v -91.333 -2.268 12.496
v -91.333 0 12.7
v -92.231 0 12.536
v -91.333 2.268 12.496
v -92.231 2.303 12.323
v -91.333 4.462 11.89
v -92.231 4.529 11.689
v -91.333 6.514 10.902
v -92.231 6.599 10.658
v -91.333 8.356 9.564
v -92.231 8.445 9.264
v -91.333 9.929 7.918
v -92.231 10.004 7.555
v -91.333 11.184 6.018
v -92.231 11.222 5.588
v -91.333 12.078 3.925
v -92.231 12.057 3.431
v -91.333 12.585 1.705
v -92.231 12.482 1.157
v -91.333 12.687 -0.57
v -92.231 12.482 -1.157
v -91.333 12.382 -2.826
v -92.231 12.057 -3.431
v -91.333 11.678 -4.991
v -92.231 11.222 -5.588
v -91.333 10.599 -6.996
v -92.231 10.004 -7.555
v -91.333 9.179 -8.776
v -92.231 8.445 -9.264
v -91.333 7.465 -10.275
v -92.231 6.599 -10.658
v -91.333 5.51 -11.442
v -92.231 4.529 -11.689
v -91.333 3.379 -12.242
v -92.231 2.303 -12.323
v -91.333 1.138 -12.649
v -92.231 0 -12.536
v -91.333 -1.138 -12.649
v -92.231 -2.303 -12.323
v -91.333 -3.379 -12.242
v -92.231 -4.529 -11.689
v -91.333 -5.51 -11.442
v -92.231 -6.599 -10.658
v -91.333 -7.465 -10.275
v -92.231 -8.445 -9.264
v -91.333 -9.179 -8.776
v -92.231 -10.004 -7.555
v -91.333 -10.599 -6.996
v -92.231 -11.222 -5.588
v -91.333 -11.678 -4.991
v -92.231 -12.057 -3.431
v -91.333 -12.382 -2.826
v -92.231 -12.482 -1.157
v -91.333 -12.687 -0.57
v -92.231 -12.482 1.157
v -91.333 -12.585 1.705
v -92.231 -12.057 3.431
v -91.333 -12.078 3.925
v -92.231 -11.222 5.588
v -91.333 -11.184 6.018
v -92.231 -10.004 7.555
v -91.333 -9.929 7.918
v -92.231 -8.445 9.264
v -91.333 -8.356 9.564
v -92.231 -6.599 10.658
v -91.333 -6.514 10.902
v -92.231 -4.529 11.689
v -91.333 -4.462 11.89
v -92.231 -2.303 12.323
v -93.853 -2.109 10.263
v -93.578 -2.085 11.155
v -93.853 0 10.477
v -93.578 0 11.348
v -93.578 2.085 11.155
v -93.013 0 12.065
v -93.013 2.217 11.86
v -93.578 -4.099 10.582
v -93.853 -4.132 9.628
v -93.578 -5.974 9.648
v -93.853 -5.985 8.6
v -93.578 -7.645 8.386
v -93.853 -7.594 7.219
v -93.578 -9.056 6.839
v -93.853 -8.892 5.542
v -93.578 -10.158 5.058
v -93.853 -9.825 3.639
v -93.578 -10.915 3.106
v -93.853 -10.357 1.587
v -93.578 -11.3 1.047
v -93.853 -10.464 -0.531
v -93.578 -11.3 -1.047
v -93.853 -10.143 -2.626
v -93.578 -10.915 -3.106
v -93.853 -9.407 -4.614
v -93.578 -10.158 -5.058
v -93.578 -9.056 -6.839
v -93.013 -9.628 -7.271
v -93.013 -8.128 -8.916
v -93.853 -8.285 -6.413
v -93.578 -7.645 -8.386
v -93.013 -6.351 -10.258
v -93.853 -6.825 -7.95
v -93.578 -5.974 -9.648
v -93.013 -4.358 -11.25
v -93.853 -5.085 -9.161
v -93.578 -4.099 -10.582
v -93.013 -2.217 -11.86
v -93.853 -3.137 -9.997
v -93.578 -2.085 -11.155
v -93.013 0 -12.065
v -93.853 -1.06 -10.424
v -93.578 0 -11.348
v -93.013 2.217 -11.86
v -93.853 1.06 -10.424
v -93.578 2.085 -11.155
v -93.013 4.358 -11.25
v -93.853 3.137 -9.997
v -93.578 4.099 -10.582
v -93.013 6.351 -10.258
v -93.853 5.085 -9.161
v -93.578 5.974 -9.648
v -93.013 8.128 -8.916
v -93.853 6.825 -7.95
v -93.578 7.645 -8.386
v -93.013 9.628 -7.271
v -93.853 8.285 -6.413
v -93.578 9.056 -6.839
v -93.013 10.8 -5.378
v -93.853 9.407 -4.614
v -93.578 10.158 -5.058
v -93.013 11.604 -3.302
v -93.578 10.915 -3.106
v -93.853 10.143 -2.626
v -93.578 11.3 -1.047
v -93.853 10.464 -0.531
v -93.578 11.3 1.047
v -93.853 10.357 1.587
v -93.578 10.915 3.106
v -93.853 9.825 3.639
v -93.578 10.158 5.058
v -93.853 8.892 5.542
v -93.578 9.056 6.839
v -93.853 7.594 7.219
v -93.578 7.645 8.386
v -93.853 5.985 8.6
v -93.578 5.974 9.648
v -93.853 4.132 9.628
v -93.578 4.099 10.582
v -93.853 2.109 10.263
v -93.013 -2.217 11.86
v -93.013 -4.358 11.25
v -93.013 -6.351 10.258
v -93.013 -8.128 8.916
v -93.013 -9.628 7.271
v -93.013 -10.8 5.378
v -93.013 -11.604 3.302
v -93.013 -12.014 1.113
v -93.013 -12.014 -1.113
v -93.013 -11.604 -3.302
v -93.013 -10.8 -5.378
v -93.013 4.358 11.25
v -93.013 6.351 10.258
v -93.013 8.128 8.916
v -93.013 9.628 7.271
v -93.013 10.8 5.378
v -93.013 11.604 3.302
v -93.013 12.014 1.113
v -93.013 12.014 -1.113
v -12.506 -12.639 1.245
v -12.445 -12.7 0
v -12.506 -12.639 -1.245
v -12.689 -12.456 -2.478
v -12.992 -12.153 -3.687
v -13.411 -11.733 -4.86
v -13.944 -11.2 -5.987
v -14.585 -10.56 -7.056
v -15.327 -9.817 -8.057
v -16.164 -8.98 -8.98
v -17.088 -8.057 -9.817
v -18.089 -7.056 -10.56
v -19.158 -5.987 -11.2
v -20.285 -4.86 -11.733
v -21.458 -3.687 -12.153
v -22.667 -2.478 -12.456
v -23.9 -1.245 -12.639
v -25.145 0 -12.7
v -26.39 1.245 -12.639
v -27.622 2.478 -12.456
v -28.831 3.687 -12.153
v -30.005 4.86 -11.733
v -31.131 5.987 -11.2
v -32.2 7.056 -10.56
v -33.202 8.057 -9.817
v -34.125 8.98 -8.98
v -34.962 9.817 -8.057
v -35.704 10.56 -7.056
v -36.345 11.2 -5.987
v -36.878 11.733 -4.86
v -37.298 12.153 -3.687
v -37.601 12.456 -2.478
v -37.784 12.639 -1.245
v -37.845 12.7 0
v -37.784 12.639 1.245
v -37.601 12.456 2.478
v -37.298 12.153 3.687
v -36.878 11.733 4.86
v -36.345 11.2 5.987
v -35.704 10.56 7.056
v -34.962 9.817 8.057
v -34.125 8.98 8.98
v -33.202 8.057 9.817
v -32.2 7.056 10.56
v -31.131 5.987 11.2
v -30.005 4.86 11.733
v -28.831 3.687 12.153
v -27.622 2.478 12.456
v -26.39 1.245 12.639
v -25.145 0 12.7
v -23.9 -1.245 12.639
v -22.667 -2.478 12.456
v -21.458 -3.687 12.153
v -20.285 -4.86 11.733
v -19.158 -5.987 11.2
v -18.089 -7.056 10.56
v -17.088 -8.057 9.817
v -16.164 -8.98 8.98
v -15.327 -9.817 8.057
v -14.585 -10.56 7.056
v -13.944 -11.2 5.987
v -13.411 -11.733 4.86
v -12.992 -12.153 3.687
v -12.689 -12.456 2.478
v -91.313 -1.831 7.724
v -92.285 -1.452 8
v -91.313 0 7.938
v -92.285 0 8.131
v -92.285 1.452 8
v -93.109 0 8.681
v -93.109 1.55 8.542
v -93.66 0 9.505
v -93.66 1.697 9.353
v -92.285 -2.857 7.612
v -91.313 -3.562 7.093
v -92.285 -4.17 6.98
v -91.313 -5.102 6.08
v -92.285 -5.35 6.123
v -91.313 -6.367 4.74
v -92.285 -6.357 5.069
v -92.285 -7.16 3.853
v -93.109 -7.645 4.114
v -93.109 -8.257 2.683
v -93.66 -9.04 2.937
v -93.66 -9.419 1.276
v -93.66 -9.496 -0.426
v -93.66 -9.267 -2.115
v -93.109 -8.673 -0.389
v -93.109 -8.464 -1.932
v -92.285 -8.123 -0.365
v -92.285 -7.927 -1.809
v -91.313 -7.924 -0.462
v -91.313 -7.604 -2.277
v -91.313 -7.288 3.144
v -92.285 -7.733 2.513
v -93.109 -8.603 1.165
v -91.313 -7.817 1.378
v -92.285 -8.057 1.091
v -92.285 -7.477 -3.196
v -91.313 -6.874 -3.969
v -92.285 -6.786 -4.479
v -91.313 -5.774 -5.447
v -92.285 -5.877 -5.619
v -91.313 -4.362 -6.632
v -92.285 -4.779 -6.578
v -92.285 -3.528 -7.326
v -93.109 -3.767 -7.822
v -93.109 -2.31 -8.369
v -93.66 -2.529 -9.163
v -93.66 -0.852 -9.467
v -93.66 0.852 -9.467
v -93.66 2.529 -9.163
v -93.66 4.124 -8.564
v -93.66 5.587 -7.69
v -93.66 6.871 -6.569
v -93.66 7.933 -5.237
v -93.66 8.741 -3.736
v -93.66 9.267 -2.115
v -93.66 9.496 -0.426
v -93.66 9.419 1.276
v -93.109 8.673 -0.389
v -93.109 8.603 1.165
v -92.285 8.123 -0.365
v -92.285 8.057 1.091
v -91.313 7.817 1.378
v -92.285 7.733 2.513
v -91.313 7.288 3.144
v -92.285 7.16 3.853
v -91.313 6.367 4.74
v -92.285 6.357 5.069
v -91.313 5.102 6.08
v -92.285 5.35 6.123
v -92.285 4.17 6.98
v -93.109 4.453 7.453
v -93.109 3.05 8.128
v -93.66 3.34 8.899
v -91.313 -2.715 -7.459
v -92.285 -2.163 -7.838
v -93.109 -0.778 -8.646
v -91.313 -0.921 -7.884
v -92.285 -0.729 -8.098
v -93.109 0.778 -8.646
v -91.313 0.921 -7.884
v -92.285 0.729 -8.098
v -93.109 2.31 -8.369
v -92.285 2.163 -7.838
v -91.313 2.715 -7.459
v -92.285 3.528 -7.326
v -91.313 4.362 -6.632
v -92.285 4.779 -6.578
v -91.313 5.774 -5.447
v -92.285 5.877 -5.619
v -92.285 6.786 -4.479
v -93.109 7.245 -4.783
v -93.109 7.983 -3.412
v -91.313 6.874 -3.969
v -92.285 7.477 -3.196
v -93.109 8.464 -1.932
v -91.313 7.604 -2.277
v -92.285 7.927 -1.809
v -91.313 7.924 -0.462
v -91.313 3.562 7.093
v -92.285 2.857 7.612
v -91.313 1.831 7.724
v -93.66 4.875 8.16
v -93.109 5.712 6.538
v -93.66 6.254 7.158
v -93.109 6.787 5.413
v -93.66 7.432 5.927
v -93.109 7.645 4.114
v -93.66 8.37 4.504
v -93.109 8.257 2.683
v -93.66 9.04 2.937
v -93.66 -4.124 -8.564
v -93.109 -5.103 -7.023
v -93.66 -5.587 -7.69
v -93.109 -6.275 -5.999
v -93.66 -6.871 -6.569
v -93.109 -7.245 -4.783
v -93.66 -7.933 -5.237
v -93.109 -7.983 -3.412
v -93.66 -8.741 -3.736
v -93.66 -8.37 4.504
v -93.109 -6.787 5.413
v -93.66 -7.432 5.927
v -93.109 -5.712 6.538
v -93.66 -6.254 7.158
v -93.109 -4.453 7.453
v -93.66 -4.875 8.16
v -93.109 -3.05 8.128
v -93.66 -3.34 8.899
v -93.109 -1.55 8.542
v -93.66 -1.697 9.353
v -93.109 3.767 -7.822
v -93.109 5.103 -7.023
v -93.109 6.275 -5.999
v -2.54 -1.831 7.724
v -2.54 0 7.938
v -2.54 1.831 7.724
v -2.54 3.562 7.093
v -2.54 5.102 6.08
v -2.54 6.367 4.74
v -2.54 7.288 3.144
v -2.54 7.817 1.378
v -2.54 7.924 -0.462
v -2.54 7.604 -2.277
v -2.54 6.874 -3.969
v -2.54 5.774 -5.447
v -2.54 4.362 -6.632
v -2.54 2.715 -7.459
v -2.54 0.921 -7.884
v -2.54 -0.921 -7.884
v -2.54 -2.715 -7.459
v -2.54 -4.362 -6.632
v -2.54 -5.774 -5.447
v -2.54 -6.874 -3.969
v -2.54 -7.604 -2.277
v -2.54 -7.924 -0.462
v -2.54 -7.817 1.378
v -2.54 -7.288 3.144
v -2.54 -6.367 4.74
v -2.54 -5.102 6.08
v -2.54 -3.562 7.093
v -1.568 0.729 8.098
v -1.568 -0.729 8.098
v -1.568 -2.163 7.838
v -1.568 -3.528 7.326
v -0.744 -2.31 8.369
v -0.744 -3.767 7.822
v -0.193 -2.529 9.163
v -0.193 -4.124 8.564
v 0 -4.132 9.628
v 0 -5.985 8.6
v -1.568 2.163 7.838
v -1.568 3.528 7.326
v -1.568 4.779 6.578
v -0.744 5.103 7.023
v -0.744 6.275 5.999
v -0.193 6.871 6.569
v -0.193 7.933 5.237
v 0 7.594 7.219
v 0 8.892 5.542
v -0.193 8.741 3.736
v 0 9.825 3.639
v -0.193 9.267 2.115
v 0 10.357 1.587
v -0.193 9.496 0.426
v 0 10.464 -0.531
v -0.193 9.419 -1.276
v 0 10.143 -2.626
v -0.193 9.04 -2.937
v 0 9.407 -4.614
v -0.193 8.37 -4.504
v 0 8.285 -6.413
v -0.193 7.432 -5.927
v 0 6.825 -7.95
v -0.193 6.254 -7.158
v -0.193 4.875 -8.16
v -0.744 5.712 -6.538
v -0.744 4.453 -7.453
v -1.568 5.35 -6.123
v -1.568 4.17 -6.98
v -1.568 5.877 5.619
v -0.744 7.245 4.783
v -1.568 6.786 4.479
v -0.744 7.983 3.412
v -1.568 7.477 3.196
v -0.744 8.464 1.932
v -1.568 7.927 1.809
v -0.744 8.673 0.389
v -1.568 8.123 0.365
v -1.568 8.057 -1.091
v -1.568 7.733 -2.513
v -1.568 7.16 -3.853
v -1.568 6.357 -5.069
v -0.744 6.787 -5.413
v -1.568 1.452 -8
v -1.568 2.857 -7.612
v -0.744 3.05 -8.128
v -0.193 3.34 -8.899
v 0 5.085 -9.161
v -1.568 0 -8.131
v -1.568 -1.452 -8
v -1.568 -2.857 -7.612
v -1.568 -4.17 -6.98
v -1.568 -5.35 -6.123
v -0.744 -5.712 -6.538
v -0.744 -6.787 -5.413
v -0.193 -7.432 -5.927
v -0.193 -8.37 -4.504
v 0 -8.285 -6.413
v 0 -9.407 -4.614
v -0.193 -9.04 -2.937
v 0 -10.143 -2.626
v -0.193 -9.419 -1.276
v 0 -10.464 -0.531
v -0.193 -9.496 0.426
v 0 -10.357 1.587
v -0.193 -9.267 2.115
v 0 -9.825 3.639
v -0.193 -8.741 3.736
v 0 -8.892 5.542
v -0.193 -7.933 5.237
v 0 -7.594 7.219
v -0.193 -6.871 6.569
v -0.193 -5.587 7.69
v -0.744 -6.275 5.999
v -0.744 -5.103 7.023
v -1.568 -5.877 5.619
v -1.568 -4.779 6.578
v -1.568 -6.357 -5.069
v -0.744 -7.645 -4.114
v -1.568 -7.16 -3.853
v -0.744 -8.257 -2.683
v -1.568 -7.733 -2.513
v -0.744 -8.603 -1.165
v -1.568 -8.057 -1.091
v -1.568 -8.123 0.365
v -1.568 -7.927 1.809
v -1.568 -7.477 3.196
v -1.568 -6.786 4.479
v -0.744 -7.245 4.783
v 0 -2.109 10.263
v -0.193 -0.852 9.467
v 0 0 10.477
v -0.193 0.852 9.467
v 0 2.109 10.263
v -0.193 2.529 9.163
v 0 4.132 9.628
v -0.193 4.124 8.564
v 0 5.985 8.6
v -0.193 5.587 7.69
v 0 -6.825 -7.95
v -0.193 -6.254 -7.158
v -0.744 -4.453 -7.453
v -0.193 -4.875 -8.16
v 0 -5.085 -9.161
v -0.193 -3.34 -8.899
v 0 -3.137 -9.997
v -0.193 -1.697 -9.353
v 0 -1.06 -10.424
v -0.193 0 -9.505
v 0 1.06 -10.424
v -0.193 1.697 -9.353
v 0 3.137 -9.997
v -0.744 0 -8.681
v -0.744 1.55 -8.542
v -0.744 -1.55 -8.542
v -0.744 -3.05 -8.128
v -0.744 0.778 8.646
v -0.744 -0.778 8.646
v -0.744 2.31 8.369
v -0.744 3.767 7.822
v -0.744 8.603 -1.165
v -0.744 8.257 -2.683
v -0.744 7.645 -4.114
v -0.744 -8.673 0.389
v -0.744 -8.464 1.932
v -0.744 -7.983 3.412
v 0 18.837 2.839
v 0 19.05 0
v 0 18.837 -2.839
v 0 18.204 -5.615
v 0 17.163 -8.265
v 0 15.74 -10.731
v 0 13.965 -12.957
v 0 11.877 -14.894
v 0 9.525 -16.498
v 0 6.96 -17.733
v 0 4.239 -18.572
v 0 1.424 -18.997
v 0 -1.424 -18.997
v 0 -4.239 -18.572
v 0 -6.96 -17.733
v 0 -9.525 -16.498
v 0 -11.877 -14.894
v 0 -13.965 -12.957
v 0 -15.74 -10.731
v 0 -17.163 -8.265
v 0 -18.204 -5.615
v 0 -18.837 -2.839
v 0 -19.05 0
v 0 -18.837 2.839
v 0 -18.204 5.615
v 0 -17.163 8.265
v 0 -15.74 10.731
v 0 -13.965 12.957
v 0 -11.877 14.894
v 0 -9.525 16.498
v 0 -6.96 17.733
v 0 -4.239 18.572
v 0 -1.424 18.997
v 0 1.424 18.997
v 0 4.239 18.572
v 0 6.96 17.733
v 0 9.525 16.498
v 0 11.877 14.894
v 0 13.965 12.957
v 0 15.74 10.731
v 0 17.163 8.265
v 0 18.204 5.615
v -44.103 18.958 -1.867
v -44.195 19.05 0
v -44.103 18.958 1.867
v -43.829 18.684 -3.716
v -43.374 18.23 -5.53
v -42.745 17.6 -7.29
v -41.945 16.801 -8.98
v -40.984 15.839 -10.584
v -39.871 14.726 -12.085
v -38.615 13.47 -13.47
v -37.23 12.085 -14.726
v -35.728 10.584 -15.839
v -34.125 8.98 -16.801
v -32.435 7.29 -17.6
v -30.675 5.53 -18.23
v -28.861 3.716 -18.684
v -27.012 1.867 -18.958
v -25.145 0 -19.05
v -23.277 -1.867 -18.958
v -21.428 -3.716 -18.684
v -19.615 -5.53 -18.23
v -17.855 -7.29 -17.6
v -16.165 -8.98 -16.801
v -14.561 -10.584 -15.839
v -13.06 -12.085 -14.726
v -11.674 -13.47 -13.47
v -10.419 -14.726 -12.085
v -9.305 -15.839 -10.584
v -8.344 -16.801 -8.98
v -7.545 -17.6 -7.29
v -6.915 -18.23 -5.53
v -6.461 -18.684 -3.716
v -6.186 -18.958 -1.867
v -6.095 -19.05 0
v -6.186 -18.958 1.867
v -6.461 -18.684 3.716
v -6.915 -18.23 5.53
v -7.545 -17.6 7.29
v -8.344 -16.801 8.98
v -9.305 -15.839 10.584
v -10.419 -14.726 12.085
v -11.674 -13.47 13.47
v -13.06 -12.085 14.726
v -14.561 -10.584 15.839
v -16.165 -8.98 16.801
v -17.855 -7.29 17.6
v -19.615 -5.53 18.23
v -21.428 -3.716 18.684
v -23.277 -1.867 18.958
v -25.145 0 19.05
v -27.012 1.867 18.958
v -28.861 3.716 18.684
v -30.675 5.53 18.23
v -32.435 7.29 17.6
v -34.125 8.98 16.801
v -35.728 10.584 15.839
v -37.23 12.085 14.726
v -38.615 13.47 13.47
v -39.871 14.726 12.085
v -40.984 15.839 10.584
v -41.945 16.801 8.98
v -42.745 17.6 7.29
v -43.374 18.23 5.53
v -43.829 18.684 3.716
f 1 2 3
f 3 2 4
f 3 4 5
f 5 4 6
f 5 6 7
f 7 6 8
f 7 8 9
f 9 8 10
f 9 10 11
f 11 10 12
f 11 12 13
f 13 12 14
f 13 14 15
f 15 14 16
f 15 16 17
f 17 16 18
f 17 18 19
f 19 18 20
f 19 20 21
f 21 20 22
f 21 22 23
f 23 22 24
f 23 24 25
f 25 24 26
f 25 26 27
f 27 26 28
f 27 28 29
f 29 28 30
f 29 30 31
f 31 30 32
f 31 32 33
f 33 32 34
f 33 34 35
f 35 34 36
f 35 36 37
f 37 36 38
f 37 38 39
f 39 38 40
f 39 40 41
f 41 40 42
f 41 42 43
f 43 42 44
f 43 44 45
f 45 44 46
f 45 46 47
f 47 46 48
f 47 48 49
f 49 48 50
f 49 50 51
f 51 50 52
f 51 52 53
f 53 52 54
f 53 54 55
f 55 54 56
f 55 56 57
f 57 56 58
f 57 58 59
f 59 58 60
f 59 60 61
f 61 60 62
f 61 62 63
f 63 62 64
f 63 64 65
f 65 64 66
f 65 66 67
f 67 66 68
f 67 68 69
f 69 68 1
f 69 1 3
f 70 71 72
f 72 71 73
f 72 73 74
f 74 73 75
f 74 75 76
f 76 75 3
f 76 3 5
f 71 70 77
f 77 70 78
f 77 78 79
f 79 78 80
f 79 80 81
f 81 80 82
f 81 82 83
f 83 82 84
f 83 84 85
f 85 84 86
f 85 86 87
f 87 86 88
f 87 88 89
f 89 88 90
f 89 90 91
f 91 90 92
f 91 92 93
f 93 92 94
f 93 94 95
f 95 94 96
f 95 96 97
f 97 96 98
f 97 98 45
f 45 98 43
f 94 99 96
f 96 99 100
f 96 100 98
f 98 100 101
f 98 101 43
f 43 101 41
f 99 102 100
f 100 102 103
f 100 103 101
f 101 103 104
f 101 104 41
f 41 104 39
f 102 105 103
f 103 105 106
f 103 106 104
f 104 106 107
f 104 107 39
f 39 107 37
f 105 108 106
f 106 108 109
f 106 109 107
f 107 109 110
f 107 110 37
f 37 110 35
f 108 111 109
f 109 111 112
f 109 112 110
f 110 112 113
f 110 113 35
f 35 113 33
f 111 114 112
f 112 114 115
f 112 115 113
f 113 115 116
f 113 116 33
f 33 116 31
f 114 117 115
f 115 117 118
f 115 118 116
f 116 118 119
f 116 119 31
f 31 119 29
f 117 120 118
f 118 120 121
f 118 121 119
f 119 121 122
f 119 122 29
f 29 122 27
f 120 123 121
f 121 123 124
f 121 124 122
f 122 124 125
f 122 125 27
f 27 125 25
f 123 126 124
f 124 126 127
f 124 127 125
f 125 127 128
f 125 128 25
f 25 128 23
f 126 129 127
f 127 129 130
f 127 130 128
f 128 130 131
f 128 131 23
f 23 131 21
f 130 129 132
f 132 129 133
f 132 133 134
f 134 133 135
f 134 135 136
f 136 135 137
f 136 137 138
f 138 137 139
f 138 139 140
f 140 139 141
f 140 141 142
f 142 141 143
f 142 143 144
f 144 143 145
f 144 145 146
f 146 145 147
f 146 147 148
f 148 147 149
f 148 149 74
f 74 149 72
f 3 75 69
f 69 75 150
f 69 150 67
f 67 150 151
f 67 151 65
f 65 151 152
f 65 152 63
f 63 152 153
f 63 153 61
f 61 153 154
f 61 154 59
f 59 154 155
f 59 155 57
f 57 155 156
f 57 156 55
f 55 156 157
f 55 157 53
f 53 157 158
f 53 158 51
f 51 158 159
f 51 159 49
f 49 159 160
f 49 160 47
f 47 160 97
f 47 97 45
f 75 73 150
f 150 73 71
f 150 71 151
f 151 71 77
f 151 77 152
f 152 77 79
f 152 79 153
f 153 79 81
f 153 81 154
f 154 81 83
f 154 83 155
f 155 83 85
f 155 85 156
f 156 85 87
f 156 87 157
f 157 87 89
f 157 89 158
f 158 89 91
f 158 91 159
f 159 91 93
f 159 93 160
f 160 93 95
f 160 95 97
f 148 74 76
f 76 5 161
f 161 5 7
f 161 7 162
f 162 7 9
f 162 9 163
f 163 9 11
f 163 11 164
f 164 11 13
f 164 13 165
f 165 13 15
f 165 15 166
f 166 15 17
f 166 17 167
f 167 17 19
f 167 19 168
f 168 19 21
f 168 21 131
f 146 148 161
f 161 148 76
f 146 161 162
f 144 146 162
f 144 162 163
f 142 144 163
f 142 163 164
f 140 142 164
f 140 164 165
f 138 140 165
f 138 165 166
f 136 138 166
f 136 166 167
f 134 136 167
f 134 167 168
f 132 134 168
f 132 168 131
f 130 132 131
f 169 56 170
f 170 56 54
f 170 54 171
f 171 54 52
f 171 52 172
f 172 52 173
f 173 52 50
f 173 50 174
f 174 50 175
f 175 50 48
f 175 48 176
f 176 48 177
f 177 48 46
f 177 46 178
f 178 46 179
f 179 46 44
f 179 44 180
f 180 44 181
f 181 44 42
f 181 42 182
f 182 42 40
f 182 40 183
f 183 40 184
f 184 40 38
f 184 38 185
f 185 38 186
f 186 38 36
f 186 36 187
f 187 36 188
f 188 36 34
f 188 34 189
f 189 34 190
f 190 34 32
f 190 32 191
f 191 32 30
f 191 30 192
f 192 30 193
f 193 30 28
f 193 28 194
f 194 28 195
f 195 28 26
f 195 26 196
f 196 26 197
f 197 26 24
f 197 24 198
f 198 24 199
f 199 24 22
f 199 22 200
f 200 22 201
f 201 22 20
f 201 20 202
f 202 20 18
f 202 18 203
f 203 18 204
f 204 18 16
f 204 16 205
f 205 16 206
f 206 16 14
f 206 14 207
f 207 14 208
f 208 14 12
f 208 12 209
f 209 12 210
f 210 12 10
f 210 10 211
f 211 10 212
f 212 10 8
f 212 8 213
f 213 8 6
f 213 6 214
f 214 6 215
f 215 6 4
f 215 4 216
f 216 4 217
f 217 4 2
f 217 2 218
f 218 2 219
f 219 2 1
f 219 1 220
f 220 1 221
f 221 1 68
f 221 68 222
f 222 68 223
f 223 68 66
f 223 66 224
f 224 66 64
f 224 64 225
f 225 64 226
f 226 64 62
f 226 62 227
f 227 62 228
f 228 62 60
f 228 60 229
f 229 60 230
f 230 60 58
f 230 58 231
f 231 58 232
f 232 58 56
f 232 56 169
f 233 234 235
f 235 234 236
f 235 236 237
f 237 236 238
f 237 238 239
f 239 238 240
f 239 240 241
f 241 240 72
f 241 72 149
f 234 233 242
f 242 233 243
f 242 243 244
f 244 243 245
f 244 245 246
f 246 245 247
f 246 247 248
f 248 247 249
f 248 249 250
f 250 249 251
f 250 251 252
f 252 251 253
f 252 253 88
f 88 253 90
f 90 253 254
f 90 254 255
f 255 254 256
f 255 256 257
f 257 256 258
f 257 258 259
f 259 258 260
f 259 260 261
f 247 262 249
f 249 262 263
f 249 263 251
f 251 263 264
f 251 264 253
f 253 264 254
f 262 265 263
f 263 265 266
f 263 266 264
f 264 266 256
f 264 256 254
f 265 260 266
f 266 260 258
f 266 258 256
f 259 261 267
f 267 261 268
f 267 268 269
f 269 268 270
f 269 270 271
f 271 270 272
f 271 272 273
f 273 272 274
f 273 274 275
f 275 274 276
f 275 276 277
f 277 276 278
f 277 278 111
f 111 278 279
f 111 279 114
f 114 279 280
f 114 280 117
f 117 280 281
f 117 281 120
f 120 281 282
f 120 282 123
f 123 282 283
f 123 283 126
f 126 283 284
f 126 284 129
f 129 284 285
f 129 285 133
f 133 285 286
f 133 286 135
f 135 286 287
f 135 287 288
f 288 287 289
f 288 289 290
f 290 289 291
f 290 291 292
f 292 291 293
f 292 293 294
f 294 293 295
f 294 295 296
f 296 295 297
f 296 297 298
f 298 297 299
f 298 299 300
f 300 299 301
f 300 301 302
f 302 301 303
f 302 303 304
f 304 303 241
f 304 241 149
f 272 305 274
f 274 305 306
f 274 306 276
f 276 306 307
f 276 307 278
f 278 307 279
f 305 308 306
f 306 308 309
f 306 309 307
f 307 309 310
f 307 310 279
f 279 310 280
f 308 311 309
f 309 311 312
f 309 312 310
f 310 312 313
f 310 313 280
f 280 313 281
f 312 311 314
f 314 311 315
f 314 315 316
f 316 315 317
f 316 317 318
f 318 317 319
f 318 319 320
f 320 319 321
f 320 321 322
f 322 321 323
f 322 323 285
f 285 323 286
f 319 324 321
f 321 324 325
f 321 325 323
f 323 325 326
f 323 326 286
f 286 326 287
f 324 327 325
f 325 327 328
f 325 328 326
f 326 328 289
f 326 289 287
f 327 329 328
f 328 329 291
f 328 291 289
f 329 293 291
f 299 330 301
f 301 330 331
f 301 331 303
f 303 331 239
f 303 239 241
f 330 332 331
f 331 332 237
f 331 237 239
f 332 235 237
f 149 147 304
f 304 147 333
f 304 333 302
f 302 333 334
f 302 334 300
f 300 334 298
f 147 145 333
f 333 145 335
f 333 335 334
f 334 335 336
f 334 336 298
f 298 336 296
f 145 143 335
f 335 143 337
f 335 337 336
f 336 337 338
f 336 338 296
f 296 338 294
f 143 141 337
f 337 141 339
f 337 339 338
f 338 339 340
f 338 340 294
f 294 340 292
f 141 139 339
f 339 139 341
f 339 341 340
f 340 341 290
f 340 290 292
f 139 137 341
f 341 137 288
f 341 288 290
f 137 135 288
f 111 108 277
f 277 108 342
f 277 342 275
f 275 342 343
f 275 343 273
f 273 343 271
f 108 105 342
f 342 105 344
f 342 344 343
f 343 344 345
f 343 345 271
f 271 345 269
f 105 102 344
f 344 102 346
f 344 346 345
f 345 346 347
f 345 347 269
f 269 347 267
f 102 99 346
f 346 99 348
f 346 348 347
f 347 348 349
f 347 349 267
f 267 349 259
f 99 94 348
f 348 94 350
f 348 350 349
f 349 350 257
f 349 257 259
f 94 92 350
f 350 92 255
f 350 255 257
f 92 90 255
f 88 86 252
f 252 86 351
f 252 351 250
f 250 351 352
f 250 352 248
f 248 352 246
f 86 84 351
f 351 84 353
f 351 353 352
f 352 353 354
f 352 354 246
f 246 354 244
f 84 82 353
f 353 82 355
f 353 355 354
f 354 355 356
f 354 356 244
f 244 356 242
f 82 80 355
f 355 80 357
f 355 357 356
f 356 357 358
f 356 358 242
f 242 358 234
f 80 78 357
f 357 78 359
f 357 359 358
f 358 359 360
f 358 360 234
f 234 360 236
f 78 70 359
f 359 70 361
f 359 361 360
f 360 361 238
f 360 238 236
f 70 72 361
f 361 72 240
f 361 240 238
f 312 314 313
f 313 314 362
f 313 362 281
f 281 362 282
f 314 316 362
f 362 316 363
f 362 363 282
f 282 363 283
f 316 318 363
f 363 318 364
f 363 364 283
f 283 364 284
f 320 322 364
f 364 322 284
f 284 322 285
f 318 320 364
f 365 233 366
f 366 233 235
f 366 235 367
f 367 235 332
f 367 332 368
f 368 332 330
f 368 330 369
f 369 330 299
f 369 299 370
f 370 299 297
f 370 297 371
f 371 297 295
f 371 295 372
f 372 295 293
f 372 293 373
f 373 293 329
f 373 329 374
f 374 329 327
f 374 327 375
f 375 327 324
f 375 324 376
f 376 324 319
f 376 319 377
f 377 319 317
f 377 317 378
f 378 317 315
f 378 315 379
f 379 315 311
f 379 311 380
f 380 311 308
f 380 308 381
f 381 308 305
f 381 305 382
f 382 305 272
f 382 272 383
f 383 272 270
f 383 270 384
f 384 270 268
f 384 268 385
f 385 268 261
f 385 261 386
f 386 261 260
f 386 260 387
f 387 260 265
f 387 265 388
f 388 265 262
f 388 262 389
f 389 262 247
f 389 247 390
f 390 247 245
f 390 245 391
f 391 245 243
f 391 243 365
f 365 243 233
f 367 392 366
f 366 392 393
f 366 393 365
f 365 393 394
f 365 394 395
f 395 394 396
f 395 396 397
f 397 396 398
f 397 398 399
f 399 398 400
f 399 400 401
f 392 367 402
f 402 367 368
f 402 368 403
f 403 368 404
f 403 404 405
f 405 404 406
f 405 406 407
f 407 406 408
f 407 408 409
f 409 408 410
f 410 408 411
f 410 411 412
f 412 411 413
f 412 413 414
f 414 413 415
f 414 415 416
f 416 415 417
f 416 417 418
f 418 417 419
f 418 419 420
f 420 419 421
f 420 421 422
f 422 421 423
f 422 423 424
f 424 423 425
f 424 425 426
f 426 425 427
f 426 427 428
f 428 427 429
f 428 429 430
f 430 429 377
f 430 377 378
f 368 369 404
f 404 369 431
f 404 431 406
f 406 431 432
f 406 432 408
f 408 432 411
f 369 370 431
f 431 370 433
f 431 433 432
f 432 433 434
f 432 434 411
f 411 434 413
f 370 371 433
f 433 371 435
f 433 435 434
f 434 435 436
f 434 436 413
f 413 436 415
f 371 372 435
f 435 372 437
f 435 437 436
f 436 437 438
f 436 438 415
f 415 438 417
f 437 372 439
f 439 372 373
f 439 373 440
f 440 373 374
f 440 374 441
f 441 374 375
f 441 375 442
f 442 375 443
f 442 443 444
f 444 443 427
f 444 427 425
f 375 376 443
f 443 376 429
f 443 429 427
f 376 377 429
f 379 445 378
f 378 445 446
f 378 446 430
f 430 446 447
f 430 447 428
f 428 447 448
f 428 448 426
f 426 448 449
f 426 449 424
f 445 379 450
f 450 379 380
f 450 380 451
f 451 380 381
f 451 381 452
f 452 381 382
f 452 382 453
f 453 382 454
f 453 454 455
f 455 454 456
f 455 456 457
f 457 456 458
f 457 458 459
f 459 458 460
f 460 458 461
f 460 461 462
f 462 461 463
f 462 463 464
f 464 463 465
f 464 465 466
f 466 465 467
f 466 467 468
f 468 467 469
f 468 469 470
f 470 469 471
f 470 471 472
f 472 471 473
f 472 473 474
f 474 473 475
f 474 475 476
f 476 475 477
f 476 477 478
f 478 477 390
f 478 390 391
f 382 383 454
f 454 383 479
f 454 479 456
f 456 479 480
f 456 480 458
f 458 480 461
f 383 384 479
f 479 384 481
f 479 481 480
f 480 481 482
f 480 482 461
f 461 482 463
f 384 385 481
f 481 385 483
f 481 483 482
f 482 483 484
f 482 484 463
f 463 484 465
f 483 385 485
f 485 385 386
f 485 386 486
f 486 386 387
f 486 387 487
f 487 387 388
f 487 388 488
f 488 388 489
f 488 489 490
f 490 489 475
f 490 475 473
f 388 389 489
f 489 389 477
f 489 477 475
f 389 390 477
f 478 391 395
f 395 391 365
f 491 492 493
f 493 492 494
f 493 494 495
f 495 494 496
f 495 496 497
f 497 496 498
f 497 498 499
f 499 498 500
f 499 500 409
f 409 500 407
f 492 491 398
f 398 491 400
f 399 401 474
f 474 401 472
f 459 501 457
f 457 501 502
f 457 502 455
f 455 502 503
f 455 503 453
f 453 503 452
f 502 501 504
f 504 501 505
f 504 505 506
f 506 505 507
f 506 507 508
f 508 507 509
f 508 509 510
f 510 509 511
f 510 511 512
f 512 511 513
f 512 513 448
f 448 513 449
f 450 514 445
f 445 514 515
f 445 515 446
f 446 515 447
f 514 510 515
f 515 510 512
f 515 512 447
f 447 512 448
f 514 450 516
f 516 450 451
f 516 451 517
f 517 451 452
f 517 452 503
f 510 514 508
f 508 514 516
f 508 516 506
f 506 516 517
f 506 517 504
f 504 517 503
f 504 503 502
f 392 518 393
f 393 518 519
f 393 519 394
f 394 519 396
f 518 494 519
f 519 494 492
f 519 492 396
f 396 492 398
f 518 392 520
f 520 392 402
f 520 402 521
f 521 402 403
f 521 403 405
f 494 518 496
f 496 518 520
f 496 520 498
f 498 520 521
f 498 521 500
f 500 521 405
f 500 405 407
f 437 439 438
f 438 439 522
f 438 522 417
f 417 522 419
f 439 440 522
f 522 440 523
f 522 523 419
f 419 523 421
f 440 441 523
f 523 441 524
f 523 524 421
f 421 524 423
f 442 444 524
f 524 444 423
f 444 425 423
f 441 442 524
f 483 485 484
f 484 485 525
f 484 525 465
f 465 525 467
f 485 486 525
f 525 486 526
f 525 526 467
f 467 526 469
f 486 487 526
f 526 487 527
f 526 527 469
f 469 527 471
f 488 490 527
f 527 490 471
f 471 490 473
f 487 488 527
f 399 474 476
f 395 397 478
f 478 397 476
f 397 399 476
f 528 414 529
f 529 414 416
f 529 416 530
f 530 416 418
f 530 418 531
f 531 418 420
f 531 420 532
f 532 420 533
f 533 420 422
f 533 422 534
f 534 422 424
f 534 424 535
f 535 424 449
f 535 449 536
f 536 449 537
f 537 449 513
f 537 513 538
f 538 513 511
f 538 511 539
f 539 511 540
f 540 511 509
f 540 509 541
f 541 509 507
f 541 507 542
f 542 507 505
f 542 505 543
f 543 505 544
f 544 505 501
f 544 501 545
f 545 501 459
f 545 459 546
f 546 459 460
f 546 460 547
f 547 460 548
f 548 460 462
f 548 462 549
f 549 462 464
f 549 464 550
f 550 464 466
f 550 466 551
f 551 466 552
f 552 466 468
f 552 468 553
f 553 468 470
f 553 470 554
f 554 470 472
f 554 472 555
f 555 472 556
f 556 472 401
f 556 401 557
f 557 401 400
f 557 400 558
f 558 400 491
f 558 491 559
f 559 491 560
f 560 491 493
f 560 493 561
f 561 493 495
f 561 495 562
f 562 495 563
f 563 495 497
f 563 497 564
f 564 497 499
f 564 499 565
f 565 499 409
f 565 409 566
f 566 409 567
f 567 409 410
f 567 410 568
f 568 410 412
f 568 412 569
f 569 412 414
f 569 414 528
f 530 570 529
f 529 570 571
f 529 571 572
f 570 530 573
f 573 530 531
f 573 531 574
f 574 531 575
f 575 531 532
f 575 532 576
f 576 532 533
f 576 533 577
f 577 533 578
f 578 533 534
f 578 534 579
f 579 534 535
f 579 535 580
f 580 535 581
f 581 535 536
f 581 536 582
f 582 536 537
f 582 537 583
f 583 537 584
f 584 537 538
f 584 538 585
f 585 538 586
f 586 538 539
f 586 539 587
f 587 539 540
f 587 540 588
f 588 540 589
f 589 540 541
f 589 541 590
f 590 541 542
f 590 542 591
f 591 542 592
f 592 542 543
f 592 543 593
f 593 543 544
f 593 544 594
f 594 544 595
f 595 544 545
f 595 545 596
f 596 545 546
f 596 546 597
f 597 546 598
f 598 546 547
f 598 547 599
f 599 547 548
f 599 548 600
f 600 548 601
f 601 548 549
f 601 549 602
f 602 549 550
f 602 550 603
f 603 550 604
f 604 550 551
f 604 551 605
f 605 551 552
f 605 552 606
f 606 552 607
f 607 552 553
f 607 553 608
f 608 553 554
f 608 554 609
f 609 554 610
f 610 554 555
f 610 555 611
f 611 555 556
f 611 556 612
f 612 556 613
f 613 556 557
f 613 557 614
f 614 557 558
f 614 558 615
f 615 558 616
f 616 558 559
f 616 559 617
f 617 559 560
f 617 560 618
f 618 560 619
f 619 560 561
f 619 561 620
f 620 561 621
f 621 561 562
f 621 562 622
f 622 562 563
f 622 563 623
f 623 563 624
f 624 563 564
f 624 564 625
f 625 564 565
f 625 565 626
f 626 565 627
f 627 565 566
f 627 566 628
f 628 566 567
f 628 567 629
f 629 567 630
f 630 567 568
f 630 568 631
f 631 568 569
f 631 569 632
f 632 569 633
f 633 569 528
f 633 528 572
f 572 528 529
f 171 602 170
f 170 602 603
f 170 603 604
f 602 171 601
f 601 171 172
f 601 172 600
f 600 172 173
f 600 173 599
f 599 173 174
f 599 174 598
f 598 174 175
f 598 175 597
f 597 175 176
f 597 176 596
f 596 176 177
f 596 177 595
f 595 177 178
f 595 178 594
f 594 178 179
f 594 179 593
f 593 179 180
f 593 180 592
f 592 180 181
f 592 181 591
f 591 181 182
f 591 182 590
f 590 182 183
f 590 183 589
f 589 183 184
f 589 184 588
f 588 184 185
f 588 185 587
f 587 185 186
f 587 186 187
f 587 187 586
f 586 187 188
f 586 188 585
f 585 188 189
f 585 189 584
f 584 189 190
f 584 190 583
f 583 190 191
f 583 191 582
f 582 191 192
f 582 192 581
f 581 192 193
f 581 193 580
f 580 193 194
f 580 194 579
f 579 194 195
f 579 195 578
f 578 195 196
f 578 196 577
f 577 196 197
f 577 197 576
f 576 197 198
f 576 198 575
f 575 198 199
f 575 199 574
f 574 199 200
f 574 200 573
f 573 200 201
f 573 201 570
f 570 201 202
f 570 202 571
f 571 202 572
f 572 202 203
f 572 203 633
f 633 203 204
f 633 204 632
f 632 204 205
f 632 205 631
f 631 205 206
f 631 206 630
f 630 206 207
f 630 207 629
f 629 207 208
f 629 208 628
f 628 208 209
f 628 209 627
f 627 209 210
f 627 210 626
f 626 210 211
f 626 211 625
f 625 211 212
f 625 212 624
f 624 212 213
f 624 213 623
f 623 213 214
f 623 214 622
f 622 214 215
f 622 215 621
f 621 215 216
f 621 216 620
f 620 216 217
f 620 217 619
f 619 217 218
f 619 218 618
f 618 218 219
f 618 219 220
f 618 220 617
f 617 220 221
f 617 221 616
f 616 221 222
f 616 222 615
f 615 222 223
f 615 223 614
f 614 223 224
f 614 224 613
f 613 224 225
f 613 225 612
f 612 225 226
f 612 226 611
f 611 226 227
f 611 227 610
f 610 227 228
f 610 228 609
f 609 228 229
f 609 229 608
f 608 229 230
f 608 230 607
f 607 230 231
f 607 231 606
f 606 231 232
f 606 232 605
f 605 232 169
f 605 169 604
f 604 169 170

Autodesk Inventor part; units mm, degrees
ref_plane "XZ Plane" through (0, 0, 0) normal (0, 1, 0) x (-1, 0, 0)
ref_plane "XY Plane" through (0, 0, 0) normal (0, 0, 1) x (1, 0, 0)
ref_plane "Work Plane1" through (0, 0, 0) normal (0.7071068, 0.7071068, 0) x (0, 0, 1)
sketch "Sketch1" plane through (0, 0, 0) normal (1, 0, 0) x (0, 1, 0)
  circle A0 centre (0, 0) radius 19.05
  dimension "outerDiameter" = 38.1
ref_plane "Work Plane2" through (-12.5724, -12.5724, 0) normal (0.7071068, 0.7071068, 0) x (0, 0, 1)
extrude "Extrusion2" add sketch "Sketch1" against normal up to surface surface through (-12.5724, -12.5724, 0) normal (0.7071068, 0.7071068, 0)
sketch "Sketch3" plane through (0, 0, 0) normal (1, 0, 0) x (0, 0, -1)
  circle A0 centre (0, 0) radius 12.7
  dimension "thruHoleDiameter" = 25.4
extrude "Extrusion4" add sketch "Sketch3" against normal blind 93.853
sketch "Sketch4" plane through (-93.853, 0, 0) normal (-1, 0, 0) x (0, 0, 1)
  circle A0 centre (0, 0) radius 7.9375
  dimension "holeForString" = 15.875
extrude "Extrusion5" cut sketch "Sketch4" against normal through all
fillet "Fillet1" radius 2.54 3 edges at (0, 0, -7.9375) (-93.853, 0, -7.9375) (-93.853, 0, 12.7)
properties part number "ElectricFenceWasher"
